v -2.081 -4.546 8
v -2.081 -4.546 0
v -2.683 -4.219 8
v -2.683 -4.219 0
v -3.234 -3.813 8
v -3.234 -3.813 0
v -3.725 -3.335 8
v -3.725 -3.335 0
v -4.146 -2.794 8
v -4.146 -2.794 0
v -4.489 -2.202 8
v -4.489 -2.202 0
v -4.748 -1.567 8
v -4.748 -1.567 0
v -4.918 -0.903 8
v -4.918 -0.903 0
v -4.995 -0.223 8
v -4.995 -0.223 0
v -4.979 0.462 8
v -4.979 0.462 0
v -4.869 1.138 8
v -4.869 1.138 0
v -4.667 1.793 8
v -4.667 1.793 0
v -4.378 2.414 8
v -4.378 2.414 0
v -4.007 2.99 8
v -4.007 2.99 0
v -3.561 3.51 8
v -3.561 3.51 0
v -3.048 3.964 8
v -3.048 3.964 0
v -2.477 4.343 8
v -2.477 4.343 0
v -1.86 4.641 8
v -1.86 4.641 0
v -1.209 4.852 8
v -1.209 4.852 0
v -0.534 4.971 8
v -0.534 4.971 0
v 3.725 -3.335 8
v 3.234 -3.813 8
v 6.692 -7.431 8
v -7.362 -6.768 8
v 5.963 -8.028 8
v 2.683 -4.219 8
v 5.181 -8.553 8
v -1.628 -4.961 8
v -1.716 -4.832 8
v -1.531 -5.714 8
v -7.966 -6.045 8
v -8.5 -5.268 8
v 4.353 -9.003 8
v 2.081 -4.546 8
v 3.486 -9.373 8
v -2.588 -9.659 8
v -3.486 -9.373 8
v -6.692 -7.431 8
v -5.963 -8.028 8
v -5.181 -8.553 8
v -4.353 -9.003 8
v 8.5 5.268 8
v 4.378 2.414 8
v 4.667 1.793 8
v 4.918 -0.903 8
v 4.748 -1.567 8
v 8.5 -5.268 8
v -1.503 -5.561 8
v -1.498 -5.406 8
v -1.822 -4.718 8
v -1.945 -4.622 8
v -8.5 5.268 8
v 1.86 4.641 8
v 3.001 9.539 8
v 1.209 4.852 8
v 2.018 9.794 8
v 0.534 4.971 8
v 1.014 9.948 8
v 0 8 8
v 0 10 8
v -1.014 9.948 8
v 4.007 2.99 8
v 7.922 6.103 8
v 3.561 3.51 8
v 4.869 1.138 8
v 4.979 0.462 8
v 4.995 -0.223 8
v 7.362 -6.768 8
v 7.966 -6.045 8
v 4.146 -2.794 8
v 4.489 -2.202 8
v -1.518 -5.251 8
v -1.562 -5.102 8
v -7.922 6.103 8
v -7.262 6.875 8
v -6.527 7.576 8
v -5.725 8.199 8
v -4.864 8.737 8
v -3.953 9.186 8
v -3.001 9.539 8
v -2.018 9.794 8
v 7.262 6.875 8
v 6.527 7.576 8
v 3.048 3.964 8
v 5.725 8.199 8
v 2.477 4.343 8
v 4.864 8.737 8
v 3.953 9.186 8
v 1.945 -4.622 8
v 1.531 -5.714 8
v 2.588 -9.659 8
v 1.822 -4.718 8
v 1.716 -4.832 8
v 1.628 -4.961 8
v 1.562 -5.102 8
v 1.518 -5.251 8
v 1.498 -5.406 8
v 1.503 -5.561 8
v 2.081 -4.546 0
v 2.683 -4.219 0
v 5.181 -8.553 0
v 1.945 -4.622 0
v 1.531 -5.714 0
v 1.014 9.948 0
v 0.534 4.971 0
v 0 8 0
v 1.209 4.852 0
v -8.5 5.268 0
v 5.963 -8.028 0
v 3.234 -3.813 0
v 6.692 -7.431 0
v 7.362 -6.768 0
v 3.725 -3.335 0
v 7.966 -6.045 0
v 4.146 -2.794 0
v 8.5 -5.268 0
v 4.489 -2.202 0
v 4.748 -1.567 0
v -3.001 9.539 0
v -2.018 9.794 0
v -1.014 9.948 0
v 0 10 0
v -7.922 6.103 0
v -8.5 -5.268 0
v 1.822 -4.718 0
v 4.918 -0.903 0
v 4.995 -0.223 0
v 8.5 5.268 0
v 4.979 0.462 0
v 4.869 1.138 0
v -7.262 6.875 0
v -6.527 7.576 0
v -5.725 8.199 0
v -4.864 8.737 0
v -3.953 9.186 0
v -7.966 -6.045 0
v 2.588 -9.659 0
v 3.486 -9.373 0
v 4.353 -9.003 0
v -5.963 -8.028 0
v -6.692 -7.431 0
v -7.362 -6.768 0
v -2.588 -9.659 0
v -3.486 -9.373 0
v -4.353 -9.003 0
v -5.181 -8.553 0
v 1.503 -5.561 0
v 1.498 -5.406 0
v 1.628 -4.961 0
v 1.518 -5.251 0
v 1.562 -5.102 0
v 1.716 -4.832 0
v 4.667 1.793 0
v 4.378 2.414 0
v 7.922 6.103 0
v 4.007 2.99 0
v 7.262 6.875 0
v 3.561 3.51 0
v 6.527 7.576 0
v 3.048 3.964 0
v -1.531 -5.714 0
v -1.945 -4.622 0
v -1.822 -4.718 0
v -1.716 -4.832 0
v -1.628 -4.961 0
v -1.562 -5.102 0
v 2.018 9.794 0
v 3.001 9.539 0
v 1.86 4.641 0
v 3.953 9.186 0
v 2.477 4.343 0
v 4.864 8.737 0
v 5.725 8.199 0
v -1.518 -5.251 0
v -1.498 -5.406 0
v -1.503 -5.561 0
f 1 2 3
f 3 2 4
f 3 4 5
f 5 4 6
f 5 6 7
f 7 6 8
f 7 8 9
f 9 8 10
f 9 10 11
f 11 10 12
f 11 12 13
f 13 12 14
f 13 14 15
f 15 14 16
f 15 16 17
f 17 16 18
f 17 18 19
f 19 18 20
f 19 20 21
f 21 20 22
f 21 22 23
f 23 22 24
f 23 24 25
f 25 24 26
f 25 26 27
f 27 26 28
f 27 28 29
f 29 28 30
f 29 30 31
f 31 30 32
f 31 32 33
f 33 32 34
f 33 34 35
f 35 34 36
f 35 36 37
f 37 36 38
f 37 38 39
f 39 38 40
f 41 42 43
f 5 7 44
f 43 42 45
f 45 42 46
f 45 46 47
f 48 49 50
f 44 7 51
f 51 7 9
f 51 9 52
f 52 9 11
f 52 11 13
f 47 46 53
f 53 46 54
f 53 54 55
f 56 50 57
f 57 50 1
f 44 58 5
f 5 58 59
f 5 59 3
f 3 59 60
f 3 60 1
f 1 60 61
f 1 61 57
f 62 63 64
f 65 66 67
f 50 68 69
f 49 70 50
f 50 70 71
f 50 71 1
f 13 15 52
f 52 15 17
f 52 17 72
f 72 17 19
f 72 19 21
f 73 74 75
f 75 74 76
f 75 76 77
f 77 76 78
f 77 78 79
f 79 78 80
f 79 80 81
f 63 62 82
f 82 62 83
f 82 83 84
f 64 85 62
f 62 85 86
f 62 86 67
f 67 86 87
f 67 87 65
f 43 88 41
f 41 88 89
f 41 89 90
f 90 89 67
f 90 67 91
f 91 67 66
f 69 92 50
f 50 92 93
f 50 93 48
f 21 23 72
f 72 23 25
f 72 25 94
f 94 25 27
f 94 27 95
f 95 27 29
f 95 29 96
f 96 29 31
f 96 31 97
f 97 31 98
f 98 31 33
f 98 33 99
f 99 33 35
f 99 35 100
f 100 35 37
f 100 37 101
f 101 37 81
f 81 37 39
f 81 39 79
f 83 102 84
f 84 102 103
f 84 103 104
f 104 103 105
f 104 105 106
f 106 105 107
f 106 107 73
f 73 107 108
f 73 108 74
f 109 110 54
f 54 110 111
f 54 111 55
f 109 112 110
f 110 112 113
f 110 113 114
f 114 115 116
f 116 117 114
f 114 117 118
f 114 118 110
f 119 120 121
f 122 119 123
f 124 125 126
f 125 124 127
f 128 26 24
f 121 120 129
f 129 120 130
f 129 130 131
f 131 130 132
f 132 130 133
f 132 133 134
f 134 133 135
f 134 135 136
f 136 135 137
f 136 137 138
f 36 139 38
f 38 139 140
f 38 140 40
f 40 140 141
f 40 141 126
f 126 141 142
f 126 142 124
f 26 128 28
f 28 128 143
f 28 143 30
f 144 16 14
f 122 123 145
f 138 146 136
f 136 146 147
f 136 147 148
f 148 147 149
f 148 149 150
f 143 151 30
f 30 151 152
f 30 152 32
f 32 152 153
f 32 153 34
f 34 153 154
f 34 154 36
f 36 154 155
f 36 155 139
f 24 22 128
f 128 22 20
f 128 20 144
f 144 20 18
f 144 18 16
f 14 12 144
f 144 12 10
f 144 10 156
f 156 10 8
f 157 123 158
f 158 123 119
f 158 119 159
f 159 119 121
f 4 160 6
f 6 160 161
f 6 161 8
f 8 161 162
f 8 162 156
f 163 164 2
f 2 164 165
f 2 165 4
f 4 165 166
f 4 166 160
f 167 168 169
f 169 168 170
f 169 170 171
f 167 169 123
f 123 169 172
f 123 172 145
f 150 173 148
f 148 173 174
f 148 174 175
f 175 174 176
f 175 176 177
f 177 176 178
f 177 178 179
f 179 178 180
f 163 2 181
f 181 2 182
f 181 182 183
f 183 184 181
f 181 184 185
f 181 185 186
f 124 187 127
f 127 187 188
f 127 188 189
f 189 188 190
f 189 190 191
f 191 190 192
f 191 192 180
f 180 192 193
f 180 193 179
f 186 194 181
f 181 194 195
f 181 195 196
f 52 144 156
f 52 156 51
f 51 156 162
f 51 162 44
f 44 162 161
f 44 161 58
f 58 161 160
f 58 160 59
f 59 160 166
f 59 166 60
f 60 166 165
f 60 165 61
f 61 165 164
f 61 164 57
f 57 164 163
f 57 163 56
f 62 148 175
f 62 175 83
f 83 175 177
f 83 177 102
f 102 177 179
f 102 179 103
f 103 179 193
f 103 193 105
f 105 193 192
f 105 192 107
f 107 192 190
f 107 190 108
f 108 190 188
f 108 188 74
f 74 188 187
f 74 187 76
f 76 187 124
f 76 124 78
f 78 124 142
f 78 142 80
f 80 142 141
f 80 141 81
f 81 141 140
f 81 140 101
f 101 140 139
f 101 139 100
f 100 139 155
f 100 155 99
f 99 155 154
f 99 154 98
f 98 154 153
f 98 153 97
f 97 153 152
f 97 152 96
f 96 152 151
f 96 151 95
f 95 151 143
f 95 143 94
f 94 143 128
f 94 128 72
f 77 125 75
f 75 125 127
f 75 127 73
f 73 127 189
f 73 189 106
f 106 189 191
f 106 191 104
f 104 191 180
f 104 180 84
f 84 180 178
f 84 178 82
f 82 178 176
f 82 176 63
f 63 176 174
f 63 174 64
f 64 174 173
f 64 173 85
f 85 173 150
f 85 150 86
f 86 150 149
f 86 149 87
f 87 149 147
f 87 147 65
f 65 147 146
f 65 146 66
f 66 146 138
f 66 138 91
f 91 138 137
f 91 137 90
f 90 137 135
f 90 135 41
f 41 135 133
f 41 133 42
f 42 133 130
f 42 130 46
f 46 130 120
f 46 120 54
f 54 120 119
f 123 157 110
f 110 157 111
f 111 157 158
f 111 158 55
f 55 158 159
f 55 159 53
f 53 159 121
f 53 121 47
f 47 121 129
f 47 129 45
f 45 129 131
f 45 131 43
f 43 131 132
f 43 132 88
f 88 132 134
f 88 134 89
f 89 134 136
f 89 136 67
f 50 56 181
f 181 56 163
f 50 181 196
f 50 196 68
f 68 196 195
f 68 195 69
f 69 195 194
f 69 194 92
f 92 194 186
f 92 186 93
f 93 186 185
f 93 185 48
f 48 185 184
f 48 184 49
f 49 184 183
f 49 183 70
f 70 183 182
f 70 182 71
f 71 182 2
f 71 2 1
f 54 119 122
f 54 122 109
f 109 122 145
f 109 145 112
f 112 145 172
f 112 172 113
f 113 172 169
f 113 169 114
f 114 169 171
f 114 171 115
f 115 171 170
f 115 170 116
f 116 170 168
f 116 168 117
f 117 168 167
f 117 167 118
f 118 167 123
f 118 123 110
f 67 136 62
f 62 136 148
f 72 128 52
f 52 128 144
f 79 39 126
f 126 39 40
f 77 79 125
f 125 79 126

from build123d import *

# Parameters (mm, degrees)
EXTRUDE_1_DEPTH     = 8
FILLET_1_R          = 1
CUT_EXTRUDE_START   = -10
CUT_EXTRUDE_1_DEPTH = 10
CUT_EXTRUDE_2_DEPTH = 16.370426149


with BuildPart() as part:
    # 草图1 → 凸台-拉伸1 (new body)
    with BuildSketch(Plane.XY):
        with BuildLine():
            Line((1.294095226, -4.829629131), (2.588190451, -9.659258263))
            ThreePointArc((2.588190451, -9.659258263), (0, 10), (-2.588190451, -9.659258263))
            Line((-2.588190451, -9.659258263), (-1.294095226, -4.829629131))
            ThreePointArc((-1.294095226, -4.829629131), (0, 5), (1.294095226, -4.829629131))
        make_face()
    extrude(amount=EXTRUDE_1_DEPTH)

    # 圆角1
    fillet_1_edges = [part.edges().sort_by_distance(p)[0] for p in [
        (-1.294095226, -4.829629131, 4),
        (1.294095226, -4.829629131, 4),
    ]]
    fillet(fillet_1_edges, radius=FILLET_1_R)

    # 草图2 → 切除-拉伸1 (cut)
    with BuildSketch(Plane.XY.offset(8).offset(CUT_EXTRUDE_START)):
        with BuildLine():
            Line((-8.5, 5.267826876), (-8.5, -5.267826876))
            ThreePointArc((-8.5, -5.267826876), (-10, 0), (-8.5, 5.267826876))
        make_face()
        with BuildLine():
            Line((8.5, 5.267826876), (8.5, -5.267826876))
            ThreePointArc((8.5, -5.267826876), (10, 0), (8.5, 5.267826876))
        make_face()
    extrude(amount=CUT_EXTRUDE_1_DEPTH, mode=Mode.SUBTRACT)

    # 草图3 → 切除-拉伸2 (cut, through all)
    with BuildSketch(Plane(origin=(0, 0, 0), x_dir=(-1, 0, 0), z_dir=(0, 0, -1))):
        with BuildLine():
            Line((0, 8), (-0.534023884, 4.971400053))
            ThreePointArc((-0.534023884, 4.971400053), (0, 5), (0.534023884, 4.971400053))
            Line((0.534023884, 4.971400053), (0, 8))
        make_face()
    extrude(amount=-CUT_EXTRUDE_2_DEPTH, mode=Mode.SUBTRACT)


solid = part.part
